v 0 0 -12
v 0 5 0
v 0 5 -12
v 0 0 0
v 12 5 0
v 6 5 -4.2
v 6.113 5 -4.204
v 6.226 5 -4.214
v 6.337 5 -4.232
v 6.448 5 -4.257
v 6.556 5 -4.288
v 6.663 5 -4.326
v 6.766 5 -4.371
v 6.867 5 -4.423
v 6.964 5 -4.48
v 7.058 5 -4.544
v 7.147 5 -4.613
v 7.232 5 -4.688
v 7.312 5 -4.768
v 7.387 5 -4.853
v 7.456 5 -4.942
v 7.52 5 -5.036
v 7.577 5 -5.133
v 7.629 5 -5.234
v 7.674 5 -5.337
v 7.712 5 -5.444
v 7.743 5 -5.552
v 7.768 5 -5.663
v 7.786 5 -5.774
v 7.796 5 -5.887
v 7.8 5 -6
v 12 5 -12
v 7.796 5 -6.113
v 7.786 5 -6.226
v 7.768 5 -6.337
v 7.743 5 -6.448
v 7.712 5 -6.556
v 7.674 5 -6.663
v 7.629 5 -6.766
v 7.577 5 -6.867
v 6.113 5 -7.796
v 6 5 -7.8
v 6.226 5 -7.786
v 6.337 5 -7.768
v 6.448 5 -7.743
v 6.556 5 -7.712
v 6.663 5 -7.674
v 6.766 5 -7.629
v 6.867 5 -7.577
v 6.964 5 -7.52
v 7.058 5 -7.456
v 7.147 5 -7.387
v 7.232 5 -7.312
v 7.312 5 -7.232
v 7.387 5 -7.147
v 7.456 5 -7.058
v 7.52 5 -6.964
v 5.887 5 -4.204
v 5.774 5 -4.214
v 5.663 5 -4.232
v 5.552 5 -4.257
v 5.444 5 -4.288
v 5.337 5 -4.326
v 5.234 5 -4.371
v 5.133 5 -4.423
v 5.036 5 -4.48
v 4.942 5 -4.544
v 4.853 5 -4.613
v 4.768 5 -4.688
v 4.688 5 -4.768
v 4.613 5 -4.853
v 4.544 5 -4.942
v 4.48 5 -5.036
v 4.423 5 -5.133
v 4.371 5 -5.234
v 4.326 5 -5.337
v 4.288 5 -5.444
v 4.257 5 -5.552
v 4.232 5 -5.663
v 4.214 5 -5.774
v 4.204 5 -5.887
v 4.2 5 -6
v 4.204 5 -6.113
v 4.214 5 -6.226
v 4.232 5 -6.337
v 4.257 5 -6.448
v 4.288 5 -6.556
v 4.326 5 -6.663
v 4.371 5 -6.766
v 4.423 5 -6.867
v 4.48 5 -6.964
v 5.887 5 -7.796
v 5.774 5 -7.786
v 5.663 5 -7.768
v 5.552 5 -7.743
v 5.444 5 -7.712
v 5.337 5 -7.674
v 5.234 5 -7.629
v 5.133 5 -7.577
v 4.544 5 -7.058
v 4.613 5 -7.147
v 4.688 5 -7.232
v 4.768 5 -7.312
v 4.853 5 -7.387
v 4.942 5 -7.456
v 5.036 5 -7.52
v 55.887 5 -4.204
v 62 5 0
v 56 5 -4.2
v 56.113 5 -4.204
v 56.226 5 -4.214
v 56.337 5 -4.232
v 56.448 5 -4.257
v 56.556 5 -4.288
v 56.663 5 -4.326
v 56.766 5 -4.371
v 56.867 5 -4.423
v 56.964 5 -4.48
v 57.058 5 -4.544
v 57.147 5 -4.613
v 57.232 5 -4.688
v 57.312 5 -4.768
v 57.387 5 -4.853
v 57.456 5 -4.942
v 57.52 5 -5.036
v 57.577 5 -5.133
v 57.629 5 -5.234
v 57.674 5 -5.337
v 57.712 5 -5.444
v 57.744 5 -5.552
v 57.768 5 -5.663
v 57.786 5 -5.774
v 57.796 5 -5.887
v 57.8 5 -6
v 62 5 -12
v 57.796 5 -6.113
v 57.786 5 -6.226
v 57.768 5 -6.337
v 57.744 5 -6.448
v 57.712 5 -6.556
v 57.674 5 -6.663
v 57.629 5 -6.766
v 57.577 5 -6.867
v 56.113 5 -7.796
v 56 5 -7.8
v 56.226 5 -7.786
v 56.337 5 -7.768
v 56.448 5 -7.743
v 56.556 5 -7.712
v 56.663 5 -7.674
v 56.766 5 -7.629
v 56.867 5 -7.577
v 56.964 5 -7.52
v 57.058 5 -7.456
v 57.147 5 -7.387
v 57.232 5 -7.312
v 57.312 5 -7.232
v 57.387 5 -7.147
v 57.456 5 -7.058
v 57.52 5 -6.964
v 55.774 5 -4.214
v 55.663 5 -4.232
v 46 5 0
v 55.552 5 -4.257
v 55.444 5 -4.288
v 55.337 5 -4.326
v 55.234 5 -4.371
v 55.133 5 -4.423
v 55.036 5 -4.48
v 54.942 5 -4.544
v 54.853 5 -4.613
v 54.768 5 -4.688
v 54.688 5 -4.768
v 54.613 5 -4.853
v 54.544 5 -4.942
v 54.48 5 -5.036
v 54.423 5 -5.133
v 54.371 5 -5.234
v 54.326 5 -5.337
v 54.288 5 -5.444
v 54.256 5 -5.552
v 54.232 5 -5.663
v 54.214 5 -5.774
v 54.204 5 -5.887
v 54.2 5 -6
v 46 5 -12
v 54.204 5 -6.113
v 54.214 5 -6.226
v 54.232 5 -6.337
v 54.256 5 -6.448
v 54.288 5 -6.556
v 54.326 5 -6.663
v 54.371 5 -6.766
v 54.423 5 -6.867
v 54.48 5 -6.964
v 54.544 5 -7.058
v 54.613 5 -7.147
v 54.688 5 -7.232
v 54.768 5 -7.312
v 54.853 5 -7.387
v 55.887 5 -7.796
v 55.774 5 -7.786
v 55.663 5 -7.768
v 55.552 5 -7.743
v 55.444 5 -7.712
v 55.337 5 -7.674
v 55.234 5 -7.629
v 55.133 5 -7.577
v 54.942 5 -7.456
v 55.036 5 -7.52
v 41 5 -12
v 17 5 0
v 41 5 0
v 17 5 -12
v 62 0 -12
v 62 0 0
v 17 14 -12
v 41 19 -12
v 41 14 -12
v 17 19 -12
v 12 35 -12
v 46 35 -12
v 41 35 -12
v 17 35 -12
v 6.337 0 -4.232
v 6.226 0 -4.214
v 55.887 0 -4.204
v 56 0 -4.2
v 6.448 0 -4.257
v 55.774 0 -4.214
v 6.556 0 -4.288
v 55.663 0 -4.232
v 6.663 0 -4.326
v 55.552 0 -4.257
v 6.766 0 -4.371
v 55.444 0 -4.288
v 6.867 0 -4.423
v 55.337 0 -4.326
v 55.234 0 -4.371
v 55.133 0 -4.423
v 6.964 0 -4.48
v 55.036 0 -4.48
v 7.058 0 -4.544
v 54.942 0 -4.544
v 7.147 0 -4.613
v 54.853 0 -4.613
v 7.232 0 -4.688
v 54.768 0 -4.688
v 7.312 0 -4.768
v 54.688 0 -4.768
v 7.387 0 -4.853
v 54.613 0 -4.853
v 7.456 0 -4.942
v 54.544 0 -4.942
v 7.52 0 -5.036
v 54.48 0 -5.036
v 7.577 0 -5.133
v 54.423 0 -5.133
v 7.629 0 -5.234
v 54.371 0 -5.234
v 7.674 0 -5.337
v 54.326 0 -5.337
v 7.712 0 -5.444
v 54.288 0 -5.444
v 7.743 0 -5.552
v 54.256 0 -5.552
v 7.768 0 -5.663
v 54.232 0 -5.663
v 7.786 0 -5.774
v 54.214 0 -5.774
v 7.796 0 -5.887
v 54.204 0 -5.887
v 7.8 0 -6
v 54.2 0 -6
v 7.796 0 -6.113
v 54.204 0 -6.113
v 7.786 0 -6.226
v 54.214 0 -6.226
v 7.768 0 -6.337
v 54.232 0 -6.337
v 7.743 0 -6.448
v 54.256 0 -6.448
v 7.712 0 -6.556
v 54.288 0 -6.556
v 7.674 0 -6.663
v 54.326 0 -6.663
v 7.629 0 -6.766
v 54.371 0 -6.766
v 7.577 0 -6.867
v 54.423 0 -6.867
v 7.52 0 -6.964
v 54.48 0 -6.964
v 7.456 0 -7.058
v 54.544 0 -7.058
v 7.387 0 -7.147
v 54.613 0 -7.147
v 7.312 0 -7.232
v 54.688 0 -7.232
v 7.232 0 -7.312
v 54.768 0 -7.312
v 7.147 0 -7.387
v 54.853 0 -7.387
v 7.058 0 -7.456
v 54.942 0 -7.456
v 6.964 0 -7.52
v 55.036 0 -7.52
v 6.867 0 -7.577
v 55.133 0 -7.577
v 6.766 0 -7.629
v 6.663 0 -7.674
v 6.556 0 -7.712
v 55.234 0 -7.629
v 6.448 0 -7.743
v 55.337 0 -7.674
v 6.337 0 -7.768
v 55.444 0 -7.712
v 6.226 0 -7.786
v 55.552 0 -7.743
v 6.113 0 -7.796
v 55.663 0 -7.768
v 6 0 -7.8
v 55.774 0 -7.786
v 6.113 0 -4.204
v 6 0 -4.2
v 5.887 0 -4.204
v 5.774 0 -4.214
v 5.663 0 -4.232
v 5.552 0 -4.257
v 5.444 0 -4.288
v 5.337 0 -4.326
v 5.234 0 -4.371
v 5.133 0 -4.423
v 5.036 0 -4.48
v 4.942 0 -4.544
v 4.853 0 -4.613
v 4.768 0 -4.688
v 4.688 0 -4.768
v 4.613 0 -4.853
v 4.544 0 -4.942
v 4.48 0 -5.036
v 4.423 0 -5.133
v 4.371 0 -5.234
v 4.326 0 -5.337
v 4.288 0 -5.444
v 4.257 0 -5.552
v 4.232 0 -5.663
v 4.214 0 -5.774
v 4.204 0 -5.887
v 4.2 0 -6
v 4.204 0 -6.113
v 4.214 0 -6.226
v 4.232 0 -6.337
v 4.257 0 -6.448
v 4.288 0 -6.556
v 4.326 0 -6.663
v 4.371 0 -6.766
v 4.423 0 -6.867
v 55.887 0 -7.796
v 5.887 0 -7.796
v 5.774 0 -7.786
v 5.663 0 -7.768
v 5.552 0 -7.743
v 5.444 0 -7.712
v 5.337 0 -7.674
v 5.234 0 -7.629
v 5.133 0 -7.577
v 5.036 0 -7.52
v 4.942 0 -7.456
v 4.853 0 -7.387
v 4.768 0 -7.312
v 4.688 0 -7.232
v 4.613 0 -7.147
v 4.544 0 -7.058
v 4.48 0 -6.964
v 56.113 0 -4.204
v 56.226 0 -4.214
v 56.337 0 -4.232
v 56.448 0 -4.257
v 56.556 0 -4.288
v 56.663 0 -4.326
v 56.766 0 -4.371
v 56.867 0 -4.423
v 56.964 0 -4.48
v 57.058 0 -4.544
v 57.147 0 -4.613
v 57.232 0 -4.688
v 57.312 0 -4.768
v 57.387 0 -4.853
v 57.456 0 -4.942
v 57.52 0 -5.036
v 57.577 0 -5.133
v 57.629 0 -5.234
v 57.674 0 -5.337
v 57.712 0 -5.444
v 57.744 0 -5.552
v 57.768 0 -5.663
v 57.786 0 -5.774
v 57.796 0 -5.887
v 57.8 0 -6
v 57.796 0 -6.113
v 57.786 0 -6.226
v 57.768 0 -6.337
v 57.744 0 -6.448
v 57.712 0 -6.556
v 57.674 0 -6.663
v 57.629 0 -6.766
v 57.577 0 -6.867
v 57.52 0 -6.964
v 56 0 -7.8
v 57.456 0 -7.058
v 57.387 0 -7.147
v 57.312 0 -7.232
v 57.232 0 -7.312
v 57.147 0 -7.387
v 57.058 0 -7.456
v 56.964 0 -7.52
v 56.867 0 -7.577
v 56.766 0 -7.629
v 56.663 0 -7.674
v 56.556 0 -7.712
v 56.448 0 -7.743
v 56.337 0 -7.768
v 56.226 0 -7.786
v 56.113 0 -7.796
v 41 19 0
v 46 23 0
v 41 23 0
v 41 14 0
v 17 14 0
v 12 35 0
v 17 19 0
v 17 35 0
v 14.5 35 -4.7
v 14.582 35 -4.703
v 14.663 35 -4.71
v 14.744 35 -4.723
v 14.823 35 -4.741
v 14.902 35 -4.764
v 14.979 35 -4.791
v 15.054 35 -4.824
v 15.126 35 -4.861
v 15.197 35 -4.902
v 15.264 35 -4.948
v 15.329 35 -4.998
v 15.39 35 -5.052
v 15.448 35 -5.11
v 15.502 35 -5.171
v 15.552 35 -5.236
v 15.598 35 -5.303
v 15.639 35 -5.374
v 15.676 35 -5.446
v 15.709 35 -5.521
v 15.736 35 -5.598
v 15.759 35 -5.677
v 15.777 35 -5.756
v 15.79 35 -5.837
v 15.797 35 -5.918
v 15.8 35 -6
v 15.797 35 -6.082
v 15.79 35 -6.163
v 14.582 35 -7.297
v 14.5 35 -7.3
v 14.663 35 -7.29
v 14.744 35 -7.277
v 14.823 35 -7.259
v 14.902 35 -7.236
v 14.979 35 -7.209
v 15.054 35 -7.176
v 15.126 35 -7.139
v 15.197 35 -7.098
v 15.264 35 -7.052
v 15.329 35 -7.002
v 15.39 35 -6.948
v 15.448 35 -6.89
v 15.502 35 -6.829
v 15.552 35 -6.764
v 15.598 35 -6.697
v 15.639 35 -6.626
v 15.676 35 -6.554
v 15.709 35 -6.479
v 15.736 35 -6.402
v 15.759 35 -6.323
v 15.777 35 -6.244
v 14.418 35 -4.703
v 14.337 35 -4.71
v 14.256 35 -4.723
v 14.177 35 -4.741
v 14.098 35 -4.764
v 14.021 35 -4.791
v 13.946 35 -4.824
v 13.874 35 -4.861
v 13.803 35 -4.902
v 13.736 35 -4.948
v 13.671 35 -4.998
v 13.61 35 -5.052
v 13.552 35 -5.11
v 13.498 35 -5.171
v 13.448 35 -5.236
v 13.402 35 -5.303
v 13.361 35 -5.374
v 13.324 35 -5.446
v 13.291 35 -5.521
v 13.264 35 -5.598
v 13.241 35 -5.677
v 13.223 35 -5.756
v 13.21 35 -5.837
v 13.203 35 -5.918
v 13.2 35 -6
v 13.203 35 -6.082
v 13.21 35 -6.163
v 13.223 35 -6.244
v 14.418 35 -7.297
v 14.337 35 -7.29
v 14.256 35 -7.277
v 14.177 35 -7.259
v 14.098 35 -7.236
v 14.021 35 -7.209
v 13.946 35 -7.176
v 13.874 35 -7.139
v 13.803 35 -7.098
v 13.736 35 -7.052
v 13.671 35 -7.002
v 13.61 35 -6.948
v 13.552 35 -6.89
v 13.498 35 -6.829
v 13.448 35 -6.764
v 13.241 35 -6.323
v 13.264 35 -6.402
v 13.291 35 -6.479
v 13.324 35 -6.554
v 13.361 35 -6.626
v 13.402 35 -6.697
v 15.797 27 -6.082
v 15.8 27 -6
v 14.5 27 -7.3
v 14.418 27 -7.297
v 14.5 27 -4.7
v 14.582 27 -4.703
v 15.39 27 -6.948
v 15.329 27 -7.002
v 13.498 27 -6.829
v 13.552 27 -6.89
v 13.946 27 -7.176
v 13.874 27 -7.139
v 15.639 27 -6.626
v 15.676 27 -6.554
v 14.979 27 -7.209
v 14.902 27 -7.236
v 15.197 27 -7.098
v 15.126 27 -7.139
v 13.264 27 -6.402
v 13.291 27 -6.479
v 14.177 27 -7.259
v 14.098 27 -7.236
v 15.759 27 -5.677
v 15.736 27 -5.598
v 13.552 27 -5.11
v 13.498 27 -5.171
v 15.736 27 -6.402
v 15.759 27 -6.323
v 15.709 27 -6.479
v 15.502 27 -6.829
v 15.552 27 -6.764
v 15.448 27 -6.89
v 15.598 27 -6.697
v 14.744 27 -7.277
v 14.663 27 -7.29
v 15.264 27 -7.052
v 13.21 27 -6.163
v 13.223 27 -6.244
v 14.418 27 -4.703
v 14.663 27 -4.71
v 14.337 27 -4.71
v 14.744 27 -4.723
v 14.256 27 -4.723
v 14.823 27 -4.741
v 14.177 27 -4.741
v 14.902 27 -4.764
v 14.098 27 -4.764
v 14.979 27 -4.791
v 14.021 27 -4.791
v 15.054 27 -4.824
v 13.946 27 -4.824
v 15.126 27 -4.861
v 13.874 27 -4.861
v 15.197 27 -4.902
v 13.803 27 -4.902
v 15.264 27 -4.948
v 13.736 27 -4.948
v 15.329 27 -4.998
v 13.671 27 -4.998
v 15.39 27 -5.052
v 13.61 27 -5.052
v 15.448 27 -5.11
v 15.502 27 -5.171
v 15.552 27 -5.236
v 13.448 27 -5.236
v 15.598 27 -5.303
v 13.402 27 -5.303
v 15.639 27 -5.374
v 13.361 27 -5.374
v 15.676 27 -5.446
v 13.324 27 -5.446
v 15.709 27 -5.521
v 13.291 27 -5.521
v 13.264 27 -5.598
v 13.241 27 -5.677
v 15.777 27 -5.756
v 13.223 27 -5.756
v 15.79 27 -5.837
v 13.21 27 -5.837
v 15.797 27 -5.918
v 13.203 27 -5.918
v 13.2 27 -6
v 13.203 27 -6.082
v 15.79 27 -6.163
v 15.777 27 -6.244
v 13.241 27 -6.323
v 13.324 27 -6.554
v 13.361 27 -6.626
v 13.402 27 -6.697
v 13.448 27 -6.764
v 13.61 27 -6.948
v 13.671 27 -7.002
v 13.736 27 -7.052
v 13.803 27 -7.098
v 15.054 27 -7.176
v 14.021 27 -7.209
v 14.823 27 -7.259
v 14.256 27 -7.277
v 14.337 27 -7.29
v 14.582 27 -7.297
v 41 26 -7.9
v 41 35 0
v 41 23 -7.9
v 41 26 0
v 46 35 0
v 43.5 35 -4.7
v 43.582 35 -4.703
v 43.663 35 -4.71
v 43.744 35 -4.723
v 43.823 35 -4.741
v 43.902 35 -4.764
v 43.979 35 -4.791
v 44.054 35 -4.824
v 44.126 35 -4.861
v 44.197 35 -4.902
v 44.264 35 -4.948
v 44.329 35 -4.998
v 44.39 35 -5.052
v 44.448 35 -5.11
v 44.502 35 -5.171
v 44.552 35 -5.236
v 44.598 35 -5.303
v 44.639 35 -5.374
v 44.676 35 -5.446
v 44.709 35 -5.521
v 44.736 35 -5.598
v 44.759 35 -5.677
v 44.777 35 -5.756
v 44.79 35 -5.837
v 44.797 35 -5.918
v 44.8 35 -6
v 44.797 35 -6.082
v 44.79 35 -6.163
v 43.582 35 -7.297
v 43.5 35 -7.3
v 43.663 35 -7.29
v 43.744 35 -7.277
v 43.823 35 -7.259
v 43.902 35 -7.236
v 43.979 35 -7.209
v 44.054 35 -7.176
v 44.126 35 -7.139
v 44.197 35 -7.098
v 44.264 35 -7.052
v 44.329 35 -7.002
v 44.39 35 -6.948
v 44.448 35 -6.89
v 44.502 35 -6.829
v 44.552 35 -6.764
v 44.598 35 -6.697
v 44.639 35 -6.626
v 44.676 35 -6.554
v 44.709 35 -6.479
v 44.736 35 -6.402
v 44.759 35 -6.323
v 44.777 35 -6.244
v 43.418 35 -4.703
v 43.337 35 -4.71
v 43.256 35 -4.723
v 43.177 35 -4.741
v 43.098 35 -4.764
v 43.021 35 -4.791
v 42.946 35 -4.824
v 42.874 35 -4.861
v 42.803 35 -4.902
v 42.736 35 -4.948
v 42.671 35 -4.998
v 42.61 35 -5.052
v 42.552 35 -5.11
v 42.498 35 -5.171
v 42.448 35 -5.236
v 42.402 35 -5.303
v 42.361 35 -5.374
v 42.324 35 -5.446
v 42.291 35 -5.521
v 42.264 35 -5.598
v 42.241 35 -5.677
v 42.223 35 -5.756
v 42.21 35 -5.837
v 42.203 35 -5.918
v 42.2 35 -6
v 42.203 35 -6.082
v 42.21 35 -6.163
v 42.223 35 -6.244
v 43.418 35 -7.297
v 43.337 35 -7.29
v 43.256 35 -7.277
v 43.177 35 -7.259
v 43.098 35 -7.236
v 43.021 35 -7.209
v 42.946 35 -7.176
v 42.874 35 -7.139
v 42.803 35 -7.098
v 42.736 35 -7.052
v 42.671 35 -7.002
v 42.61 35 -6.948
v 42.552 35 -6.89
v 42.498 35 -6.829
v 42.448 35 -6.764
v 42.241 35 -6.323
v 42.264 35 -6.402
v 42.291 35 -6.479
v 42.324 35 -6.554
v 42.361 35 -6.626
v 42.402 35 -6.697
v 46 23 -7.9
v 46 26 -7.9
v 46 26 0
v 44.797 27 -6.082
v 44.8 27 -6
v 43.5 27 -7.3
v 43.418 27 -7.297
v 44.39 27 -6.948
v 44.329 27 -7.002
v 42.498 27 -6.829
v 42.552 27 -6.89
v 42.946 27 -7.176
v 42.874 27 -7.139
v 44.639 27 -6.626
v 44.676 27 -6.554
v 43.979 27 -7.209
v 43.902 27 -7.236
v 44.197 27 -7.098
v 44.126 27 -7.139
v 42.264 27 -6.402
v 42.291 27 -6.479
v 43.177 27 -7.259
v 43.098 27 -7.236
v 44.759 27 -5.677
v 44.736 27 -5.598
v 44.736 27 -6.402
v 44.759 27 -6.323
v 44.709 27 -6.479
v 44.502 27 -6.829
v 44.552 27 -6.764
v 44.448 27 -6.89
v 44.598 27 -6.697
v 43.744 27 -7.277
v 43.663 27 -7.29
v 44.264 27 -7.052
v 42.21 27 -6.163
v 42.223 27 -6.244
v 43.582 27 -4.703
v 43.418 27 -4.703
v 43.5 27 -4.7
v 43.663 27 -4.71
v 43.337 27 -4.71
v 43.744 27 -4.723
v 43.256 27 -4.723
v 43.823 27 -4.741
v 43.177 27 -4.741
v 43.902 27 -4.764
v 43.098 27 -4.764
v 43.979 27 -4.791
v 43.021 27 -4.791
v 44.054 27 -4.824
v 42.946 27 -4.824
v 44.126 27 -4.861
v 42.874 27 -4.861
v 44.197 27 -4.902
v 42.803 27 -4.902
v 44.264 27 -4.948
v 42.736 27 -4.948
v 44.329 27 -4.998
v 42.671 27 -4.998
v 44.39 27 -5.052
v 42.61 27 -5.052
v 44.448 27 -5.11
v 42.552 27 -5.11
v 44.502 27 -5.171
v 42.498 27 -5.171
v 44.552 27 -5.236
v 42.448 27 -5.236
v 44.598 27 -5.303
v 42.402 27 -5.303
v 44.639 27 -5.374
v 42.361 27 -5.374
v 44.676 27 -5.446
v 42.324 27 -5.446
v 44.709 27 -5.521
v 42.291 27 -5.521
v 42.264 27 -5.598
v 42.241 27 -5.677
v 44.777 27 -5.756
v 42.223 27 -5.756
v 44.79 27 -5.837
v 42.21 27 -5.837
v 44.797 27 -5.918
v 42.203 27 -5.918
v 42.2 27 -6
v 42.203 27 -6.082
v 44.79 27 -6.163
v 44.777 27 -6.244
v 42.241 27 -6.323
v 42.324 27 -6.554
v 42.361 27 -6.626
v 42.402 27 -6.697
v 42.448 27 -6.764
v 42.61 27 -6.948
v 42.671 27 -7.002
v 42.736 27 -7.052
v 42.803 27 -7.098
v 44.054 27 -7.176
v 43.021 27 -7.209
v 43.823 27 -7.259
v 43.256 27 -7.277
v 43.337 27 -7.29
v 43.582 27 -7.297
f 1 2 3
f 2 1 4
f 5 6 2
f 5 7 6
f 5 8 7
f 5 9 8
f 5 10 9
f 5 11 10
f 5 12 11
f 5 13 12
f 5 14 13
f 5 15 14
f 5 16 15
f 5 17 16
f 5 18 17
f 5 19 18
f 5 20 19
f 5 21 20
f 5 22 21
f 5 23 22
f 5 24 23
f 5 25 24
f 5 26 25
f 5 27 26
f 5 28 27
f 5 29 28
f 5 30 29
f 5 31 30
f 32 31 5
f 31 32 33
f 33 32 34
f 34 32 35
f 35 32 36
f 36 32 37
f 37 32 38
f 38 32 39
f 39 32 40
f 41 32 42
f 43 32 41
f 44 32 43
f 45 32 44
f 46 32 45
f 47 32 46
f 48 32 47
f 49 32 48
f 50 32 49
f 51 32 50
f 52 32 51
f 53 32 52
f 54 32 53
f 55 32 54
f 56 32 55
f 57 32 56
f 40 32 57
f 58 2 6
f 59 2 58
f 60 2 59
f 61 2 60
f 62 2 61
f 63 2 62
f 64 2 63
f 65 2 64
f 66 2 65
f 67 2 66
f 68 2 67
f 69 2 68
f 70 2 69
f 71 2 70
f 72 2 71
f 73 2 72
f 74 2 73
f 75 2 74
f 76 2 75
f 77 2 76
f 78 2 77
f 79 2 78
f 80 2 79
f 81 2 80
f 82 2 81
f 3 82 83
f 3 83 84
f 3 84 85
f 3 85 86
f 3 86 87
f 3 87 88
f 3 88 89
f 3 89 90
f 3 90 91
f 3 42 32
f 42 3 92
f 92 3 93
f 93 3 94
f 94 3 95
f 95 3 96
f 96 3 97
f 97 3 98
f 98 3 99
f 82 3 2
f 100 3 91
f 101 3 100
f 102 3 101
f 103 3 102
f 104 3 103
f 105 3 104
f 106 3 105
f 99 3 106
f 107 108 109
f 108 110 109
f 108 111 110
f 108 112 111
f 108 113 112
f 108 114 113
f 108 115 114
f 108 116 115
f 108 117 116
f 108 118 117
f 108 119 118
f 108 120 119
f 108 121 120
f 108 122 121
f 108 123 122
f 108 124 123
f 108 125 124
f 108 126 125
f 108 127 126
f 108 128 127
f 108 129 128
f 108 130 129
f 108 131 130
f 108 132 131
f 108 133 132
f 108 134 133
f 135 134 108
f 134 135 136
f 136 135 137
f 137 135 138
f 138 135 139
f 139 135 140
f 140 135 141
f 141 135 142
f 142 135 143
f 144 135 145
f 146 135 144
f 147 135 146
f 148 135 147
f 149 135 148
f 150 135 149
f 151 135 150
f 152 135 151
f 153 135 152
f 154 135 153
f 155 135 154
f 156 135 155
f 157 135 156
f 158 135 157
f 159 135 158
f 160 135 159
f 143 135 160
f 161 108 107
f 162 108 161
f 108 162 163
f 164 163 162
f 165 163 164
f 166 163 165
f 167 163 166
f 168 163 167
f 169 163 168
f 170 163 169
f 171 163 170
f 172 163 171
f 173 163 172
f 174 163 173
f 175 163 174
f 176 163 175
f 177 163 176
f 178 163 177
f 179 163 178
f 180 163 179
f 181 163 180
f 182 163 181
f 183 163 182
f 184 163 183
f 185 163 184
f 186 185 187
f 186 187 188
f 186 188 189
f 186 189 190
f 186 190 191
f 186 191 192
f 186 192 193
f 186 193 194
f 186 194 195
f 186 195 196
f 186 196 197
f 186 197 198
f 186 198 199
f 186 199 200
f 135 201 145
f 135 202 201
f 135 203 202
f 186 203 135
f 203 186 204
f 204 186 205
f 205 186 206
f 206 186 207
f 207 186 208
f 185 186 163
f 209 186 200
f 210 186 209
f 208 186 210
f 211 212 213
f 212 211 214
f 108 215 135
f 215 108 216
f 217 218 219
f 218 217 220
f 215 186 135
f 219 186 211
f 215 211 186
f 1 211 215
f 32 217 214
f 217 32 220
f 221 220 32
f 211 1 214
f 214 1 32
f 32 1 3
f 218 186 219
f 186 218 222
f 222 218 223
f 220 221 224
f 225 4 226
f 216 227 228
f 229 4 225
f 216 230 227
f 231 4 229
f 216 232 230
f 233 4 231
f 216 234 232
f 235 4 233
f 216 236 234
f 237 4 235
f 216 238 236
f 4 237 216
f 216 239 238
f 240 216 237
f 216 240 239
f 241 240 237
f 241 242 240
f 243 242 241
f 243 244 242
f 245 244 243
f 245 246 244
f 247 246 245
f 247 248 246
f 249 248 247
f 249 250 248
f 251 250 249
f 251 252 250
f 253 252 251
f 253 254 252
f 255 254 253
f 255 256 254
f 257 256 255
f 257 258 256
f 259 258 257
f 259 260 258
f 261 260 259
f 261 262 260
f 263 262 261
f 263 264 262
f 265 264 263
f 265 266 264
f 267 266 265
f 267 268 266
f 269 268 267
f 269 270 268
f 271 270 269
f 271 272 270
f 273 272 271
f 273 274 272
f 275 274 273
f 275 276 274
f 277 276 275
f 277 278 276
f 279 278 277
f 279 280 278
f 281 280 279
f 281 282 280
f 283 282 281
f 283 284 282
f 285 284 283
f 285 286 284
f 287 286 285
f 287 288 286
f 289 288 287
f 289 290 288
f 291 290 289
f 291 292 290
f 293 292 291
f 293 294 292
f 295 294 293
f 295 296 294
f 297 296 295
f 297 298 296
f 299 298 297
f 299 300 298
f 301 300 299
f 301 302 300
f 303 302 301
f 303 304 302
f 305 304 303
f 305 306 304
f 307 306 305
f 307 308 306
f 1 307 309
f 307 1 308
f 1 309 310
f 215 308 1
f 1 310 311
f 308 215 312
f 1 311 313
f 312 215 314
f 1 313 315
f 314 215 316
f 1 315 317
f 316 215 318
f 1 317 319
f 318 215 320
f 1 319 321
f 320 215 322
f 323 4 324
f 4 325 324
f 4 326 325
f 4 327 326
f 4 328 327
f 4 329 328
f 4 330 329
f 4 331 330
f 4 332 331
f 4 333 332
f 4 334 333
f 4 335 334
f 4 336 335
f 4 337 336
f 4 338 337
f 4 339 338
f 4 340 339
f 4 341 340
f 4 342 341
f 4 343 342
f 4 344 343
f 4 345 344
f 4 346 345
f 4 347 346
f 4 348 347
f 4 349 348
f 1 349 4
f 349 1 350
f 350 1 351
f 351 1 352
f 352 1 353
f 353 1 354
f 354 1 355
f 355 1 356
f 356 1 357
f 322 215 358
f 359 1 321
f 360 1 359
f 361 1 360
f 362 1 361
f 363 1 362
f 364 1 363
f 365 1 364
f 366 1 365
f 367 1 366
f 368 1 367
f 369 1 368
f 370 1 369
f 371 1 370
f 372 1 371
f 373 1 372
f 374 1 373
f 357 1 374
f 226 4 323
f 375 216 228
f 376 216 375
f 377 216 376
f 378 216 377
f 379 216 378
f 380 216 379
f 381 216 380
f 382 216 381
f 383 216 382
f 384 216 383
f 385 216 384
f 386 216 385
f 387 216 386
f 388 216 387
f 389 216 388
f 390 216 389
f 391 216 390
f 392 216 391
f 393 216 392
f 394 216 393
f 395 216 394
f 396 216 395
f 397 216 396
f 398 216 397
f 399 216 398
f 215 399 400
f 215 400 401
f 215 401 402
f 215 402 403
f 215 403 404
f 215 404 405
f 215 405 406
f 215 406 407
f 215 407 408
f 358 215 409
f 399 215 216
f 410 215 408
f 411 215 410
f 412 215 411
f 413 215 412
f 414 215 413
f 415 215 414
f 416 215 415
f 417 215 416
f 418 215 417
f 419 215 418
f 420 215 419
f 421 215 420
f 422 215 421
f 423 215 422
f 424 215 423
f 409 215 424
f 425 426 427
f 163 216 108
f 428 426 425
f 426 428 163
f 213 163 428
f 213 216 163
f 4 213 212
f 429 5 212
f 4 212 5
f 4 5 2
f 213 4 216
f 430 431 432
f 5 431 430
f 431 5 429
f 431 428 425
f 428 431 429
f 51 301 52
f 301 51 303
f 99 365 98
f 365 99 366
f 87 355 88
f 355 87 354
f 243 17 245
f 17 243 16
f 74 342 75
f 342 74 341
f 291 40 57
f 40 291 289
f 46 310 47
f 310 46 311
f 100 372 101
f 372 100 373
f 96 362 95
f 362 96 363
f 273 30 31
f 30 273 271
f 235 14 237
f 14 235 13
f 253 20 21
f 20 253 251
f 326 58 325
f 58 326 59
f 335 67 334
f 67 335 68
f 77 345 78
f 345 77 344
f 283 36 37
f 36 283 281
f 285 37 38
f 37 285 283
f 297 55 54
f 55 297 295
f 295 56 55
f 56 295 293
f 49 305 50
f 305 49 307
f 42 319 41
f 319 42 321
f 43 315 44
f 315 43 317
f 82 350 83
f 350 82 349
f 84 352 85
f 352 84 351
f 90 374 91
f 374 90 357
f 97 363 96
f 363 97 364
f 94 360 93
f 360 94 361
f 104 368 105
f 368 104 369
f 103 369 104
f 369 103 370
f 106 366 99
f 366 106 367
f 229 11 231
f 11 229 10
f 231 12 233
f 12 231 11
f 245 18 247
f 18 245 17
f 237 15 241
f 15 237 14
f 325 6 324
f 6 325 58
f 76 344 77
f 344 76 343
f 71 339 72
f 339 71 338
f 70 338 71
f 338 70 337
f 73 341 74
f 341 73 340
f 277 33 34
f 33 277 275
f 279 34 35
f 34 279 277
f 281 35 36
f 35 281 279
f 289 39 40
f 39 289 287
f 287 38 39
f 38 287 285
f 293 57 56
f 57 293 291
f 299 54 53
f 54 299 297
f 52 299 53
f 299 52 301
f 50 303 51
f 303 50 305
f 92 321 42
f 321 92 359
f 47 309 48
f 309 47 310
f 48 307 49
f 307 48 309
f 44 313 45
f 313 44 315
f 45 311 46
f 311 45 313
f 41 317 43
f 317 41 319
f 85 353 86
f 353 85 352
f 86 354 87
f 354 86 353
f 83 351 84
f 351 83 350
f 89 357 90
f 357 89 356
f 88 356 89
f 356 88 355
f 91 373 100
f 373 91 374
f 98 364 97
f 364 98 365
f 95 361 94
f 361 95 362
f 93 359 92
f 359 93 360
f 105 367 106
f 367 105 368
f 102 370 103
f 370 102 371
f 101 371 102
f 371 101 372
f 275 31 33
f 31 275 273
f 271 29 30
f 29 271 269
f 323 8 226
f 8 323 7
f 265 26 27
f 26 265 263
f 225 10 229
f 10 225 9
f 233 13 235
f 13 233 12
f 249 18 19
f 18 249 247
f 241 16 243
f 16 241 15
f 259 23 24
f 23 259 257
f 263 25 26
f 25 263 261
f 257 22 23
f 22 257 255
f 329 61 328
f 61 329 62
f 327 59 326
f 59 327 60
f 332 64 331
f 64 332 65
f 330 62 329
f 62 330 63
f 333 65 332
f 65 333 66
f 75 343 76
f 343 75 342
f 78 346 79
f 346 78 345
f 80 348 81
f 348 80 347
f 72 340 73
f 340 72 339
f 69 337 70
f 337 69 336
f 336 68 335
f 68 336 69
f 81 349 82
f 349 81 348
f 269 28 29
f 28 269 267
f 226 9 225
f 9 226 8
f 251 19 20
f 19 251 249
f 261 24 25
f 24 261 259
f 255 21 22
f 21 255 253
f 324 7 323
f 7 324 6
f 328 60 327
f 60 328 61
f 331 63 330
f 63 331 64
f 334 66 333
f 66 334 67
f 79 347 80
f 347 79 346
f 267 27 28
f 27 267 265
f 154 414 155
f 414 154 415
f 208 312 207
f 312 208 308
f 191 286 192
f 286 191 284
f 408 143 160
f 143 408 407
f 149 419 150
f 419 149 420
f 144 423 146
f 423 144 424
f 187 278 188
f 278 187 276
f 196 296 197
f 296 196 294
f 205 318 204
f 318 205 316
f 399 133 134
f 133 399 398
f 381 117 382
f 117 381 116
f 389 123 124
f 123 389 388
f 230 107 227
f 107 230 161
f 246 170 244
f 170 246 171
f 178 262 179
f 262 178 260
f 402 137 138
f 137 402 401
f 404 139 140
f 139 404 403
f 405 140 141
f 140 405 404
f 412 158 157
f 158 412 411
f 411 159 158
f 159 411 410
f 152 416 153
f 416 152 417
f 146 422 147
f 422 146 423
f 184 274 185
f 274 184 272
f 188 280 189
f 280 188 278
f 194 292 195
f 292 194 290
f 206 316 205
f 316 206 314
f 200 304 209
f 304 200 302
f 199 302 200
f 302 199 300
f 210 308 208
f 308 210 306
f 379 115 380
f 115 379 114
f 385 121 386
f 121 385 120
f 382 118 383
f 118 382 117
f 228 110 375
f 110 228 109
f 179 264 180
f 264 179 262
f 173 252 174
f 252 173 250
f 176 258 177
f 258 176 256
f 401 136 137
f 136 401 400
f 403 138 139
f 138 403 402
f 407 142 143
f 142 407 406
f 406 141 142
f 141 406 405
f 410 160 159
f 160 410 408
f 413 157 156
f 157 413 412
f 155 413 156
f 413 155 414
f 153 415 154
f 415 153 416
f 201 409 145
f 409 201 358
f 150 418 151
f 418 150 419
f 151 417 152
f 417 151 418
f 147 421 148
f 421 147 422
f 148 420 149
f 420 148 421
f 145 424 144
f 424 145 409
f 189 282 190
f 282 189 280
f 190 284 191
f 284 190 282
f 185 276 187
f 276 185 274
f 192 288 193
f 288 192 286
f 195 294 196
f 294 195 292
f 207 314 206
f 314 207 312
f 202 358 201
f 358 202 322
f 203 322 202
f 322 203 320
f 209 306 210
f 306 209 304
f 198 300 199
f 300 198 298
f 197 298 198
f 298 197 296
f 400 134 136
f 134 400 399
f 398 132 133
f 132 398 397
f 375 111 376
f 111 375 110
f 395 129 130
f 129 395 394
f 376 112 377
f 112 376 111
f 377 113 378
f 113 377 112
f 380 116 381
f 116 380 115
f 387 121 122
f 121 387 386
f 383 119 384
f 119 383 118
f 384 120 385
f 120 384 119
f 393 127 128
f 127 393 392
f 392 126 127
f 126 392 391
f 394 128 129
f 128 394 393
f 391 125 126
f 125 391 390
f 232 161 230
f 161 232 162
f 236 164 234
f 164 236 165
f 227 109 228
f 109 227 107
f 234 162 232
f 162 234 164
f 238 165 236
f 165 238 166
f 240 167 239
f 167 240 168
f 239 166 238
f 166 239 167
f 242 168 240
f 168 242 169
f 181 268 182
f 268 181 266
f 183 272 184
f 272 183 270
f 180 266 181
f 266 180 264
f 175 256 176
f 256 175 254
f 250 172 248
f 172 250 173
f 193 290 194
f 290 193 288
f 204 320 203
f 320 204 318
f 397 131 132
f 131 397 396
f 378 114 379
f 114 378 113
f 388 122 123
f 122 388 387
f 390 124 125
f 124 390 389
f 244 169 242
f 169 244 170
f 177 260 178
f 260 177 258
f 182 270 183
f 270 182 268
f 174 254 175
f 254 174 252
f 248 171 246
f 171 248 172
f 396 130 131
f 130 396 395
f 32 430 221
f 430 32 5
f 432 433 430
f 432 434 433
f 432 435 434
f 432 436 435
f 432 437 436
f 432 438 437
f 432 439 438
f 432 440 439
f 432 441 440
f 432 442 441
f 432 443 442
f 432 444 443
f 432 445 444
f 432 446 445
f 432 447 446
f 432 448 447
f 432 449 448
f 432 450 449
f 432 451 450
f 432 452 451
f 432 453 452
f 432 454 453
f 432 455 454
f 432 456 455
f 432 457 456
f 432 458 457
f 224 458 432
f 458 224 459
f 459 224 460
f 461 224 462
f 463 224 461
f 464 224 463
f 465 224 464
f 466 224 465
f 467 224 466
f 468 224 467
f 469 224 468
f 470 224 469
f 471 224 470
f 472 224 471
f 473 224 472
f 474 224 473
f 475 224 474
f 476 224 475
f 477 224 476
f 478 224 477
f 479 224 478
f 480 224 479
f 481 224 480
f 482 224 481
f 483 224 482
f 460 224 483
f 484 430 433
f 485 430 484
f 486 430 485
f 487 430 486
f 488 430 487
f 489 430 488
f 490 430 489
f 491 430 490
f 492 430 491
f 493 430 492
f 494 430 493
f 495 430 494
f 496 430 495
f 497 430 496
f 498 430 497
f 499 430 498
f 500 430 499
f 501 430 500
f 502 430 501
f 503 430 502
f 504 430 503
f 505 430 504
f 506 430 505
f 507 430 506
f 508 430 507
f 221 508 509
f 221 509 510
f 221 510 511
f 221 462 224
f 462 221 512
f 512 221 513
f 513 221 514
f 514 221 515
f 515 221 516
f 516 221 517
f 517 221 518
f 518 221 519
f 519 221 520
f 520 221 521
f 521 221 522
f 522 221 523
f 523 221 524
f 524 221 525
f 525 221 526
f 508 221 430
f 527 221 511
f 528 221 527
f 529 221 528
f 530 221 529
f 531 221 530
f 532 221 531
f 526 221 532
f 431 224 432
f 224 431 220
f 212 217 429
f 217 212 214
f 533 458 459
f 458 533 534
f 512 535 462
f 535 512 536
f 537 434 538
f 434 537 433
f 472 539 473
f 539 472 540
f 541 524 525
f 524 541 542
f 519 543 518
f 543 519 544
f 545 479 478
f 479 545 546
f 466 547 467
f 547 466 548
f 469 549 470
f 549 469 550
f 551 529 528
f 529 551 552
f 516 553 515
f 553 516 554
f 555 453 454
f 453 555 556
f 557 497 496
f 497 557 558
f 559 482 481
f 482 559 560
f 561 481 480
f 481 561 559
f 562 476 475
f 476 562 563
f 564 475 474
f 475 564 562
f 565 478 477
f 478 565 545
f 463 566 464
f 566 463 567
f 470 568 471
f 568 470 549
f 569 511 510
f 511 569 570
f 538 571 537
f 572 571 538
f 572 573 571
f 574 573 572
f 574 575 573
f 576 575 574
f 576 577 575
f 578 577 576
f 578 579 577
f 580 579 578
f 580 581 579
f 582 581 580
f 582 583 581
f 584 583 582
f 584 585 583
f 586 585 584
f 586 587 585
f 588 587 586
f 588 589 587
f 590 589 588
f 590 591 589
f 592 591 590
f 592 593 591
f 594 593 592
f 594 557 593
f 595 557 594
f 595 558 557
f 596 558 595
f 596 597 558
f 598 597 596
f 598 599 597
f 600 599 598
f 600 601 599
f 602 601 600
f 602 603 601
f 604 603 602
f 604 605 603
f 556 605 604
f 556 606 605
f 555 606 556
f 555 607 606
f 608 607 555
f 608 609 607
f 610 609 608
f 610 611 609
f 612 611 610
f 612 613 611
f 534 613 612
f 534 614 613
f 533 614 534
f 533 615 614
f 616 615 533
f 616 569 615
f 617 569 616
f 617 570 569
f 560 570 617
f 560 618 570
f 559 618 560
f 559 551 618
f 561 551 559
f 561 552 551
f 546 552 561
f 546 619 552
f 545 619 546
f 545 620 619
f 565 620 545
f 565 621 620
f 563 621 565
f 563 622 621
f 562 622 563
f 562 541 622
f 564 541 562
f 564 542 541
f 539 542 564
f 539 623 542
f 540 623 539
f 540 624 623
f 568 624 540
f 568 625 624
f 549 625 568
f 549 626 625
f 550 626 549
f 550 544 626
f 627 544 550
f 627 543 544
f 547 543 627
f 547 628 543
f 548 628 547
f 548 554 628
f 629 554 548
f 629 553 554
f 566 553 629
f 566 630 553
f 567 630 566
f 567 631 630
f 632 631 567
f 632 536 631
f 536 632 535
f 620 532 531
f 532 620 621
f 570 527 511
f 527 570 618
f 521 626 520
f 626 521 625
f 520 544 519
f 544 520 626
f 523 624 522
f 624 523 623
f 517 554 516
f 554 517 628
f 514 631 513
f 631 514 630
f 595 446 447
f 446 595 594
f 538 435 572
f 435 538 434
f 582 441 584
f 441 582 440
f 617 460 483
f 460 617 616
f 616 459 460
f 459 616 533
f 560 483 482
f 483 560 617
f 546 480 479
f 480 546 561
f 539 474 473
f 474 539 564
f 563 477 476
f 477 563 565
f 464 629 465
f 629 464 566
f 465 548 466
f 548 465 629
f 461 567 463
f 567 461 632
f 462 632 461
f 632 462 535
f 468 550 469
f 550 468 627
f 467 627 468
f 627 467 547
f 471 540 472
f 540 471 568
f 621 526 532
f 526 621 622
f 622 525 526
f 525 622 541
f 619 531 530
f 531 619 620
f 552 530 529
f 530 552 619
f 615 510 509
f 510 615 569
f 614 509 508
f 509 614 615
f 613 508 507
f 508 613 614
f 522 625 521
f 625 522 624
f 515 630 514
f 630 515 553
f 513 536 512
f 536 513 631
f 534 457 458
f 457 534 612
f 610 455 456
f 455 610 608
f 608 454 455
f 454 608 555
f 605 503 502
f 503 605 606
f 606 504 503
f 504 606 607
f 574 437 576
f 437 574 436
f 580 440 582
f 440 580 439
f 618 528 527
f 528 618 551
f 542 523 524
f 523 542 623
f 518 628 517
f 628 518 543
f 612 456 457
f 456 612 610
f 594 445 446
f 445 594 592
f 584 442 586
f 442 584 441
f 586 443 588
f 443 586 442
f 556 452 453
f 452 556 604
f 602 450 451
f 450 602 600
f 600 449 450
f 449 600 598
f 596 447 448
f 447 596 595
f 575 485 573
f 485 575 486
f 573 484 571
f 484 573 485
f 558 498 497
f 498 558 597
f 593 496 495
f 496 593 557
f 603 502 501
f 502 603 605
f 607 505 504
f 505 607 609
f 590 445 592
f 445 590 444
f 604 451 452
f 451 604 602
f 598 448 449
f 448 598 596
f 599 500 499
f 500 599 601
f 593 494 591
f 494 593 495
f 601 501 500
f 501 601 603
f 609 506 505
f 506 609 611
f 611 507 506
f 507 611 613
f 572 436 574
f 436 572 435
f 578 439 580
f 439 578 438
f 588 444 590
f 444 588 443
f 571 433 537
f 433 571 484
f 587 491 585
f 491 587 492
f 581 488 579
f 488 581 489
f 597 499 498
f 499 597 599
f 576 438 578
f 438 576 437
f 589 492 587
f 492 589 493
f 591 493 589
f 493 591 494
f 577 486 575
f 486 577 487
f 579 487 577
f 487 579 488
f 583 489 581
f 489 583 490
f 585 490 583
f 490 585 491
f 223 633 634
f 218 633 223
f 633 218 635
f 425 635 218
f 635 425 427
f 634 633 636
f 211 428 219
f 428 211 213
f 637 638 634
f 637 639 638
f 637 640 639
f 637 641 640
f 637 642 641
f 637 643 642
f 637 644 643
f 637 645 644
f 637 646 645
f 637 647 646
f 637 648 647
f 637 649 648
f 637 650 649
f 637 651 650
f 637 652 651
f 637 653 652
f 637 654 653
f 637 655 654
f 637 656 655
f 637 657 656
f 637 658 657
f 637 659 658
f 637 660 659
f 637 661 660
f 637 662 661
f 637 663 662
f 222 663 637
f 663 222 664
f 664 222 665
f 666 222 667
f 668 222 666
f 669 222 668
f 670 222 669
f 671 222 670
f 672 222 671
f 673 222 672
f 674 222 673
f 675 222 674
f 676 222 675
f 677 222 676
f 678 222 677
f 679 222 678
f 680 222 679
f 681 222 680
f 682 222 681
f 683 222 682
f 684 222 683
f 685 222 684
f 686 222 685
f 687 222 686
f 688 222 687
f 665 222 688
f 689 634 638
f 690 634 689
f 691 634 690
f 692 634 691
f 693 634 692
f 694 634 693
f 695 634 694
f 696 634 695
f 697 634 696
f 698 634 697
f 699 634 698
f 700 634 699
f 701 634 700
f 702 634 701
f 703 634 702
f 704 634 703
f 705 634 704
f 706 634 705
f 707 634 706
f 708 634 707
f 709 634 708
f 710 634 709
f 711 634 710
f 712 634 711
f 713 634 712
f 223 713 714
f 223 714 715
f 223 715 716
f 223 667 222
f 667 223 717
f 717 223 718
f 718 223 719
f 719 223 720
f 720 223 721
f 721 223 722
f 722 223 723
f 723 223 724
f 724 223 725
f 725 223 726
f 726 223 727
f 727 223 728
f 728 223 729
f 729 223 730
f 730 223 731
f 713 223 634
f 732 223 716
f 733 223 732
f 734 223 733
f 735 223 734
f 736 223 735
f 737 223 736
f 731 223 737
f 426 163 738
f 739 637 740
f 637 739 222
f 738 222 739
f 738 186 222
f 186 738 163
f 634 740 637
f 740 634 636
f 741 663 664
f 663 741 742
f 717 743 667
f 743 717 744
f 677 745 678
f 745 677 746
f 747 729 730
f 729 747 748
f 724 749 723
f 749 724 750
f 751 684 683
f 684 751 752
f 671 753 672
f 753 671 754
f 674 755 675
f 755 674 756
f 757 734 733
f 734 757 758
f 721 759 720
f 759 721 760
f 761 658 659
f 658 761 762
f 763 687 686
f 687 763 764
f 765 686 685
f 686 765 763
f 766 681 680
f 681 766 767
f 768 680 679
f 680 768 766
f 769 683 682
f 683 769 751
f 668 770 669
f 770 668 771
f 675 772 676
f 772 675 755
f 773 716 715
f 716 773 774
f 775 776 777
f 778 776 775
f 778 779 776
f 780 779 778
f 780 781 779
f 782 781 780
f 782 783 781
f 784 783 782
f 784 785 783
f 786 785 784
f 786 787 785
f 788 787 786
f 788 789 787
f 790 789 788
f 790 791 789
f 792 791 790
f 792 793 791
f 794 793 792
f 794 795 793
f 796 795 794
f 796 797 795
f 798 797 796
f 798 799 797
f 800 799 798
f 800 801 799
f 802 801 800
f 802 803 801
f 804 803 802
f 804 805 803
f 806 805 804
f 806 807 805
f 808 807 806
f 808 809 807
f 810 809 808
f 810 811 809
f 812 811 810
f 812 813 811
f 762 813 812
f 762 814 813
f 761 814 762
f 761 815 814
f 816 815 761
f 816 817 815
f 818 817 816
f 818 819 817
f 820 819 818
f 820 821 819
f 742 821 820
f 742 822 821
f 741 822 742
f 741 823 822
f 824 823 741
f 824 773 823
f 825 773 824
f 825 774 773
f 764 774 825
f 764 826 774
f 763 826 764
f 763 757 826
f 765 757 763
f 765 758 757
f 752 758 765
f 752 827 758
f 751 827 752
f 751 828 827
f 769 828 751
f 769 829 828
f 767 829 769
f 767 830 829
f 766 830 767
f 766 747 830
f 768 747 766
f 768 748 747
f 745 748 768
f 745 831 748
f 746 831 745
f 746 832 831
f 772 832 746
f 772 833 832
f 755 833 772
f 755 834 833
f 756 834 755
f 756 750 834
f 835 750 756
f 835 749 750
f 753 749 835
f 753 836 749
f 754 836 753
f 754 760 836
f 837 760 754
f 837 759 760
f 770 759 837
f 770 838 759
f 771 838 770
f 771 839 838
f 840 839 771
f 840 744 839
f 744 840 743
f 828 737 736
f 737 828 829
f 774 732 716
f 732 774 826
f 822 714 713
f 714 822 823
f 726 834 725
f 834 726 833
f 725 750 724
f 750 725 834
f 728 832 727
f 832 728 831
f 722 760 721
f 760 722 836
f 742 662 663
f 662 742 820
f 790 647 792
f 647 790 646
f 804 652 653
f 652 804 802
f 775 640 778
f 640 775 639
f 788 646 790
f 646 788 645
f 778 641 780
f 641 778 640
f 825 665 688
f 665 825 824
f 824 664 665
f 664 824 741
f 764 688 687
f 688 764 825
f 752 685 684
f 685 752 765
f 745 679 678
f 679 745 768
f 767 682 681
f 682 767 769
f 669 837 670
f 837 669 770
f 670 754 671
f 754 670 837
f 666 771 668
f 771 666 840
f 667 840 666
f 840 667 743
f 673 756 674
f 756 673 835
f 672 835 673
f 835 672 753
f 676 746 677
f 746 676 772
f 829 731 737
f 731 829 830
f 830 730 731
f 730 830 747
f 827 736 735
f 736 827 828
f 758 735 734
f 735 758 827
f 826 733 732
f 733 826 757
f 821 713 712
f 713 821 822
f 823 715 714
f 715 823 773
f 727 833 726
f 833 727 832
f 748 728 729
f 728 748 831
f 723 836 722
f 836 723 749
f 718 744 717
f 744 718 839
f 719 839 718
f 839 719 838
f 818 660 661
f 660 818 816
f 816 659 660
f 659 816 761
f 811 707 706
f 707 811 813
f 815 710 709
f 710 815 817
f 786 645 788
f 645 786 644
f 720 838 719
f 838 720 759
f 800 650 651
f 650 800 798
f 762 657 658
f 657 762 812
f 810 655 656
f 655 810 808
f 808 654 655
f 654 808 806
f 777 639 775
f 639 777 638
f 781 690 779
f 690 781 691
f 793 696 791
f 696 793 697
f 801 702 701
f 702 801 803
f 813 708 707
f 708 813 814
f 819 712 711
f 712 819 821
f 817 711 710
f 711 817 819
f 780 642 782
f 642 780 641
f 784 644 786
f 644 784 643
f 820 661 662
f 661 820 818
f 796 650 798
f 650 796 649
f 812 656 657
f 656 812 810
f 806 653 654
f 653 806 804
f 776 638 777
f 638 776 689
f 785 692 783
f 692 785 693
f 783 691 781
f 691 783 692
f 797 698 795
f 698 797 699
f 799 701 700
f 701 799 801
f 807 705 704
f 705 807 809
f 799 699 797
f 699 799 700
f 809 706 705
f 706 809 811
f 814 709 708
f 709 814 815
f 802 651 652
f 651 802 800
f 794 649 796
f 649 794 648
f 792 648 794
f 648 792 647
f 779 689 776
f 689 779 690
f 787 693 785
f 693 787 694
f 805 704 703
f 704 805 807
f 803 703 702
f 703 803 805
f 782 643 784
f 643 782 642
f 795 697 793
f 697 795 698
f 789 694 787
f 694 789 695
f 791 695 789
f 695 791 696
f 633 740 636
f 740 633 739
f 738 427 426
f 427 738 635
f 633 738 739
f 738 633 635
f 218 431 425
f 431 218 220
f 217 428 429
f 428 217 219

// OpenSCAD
separacionTornillos = 50;
fondo = 12;
grosor = 5;
alturaTotal = 35;
huecoXMotor = 24;
huecoYMotor = 16;

rotate([-90, 0, 0]) {
    // Suelo
    difference() {
        cube([separacionTornillos+fondo, fondo, grosor]);
        // Perforaciones fijaciones suelo
        translate([fondo/2, fondo/2, -0.1]) {
            cylinder(h = 5.2, r = 1.8, $fn=100);
        }
        translate([separacionTornillos+fondo/2, fondo/2, -0.1]) {
            cylinder(h = 5.2, r = 1.8, $fn=100);
        }
    }

    // Ala Izquierda
    translate([fondo, 0, 0]) {
        difference() {
            cube([grosor, fondo, alturaTotal]);
            // Fijación motor
            translate([grosor/2, fondo/2, alturaTotal - 8]) {
                cylinder(h = 8.1, r = 1.3, $fn=100);
            }    
        }    
    }
    
    // Ala Derecha
    translate([fondo + huecoXMotor + grosor, 0, 0]) {
        difference() {
            cube([grosor, fondo, alturaTotal]);
            // Fijación motor
            translate([5/2, fondo/2, alturaTotal - 8]) {
                cylinder(h = 8.1, r = 1.3, $fn=100);
            }
            // Muesca para cable
            translate([-0.1, -0.1, 23]) {
                cube([5.2, 8, 3]);
            }
        }
    }
    
    // Base motor
    translate([fondo, 0, alturaTotal - huecoYMotor - grosor]) {
        cube([huecoXMotor+grosor*2, fondo, grosor]);
    }    

//    translate([9, 0, 0]) {    
//        // base central
//        difference() {
//            cube([5 + 24 + 5, tamY, 20]);
//            // Hueco
//            translate([5, 0, 0]) {    
//                cube([24, tamY, 15]);
//            }
//        }
//        // Ala Izquierda
//        difference() {
//            cube([grosor, tamY, 20 + 16]);
//            translate([5/2, tamY/2, 20 + 16 - 8]) {
//                cylinder(h = 8.1, r = 1.3, $fn=100);
//            }
//        }
//        // Ala Derecha
//        translate([5 + 24, 0, 0]) {
//            difference() {
//                cube([grosor, tamY, 20 + 16]);
//                translate([5/2, tamY/2, 20 + 16 - 8]) {
//                    cylinder(h = 8.1, r = 1.3, $fn=100);
//                }
//                // Muesca para cable
//                translate([-0.1, -0.1, 24]) {
//                    cube([5.2, 8, 3]);
//                }
//            }
//        }
//    }
}
